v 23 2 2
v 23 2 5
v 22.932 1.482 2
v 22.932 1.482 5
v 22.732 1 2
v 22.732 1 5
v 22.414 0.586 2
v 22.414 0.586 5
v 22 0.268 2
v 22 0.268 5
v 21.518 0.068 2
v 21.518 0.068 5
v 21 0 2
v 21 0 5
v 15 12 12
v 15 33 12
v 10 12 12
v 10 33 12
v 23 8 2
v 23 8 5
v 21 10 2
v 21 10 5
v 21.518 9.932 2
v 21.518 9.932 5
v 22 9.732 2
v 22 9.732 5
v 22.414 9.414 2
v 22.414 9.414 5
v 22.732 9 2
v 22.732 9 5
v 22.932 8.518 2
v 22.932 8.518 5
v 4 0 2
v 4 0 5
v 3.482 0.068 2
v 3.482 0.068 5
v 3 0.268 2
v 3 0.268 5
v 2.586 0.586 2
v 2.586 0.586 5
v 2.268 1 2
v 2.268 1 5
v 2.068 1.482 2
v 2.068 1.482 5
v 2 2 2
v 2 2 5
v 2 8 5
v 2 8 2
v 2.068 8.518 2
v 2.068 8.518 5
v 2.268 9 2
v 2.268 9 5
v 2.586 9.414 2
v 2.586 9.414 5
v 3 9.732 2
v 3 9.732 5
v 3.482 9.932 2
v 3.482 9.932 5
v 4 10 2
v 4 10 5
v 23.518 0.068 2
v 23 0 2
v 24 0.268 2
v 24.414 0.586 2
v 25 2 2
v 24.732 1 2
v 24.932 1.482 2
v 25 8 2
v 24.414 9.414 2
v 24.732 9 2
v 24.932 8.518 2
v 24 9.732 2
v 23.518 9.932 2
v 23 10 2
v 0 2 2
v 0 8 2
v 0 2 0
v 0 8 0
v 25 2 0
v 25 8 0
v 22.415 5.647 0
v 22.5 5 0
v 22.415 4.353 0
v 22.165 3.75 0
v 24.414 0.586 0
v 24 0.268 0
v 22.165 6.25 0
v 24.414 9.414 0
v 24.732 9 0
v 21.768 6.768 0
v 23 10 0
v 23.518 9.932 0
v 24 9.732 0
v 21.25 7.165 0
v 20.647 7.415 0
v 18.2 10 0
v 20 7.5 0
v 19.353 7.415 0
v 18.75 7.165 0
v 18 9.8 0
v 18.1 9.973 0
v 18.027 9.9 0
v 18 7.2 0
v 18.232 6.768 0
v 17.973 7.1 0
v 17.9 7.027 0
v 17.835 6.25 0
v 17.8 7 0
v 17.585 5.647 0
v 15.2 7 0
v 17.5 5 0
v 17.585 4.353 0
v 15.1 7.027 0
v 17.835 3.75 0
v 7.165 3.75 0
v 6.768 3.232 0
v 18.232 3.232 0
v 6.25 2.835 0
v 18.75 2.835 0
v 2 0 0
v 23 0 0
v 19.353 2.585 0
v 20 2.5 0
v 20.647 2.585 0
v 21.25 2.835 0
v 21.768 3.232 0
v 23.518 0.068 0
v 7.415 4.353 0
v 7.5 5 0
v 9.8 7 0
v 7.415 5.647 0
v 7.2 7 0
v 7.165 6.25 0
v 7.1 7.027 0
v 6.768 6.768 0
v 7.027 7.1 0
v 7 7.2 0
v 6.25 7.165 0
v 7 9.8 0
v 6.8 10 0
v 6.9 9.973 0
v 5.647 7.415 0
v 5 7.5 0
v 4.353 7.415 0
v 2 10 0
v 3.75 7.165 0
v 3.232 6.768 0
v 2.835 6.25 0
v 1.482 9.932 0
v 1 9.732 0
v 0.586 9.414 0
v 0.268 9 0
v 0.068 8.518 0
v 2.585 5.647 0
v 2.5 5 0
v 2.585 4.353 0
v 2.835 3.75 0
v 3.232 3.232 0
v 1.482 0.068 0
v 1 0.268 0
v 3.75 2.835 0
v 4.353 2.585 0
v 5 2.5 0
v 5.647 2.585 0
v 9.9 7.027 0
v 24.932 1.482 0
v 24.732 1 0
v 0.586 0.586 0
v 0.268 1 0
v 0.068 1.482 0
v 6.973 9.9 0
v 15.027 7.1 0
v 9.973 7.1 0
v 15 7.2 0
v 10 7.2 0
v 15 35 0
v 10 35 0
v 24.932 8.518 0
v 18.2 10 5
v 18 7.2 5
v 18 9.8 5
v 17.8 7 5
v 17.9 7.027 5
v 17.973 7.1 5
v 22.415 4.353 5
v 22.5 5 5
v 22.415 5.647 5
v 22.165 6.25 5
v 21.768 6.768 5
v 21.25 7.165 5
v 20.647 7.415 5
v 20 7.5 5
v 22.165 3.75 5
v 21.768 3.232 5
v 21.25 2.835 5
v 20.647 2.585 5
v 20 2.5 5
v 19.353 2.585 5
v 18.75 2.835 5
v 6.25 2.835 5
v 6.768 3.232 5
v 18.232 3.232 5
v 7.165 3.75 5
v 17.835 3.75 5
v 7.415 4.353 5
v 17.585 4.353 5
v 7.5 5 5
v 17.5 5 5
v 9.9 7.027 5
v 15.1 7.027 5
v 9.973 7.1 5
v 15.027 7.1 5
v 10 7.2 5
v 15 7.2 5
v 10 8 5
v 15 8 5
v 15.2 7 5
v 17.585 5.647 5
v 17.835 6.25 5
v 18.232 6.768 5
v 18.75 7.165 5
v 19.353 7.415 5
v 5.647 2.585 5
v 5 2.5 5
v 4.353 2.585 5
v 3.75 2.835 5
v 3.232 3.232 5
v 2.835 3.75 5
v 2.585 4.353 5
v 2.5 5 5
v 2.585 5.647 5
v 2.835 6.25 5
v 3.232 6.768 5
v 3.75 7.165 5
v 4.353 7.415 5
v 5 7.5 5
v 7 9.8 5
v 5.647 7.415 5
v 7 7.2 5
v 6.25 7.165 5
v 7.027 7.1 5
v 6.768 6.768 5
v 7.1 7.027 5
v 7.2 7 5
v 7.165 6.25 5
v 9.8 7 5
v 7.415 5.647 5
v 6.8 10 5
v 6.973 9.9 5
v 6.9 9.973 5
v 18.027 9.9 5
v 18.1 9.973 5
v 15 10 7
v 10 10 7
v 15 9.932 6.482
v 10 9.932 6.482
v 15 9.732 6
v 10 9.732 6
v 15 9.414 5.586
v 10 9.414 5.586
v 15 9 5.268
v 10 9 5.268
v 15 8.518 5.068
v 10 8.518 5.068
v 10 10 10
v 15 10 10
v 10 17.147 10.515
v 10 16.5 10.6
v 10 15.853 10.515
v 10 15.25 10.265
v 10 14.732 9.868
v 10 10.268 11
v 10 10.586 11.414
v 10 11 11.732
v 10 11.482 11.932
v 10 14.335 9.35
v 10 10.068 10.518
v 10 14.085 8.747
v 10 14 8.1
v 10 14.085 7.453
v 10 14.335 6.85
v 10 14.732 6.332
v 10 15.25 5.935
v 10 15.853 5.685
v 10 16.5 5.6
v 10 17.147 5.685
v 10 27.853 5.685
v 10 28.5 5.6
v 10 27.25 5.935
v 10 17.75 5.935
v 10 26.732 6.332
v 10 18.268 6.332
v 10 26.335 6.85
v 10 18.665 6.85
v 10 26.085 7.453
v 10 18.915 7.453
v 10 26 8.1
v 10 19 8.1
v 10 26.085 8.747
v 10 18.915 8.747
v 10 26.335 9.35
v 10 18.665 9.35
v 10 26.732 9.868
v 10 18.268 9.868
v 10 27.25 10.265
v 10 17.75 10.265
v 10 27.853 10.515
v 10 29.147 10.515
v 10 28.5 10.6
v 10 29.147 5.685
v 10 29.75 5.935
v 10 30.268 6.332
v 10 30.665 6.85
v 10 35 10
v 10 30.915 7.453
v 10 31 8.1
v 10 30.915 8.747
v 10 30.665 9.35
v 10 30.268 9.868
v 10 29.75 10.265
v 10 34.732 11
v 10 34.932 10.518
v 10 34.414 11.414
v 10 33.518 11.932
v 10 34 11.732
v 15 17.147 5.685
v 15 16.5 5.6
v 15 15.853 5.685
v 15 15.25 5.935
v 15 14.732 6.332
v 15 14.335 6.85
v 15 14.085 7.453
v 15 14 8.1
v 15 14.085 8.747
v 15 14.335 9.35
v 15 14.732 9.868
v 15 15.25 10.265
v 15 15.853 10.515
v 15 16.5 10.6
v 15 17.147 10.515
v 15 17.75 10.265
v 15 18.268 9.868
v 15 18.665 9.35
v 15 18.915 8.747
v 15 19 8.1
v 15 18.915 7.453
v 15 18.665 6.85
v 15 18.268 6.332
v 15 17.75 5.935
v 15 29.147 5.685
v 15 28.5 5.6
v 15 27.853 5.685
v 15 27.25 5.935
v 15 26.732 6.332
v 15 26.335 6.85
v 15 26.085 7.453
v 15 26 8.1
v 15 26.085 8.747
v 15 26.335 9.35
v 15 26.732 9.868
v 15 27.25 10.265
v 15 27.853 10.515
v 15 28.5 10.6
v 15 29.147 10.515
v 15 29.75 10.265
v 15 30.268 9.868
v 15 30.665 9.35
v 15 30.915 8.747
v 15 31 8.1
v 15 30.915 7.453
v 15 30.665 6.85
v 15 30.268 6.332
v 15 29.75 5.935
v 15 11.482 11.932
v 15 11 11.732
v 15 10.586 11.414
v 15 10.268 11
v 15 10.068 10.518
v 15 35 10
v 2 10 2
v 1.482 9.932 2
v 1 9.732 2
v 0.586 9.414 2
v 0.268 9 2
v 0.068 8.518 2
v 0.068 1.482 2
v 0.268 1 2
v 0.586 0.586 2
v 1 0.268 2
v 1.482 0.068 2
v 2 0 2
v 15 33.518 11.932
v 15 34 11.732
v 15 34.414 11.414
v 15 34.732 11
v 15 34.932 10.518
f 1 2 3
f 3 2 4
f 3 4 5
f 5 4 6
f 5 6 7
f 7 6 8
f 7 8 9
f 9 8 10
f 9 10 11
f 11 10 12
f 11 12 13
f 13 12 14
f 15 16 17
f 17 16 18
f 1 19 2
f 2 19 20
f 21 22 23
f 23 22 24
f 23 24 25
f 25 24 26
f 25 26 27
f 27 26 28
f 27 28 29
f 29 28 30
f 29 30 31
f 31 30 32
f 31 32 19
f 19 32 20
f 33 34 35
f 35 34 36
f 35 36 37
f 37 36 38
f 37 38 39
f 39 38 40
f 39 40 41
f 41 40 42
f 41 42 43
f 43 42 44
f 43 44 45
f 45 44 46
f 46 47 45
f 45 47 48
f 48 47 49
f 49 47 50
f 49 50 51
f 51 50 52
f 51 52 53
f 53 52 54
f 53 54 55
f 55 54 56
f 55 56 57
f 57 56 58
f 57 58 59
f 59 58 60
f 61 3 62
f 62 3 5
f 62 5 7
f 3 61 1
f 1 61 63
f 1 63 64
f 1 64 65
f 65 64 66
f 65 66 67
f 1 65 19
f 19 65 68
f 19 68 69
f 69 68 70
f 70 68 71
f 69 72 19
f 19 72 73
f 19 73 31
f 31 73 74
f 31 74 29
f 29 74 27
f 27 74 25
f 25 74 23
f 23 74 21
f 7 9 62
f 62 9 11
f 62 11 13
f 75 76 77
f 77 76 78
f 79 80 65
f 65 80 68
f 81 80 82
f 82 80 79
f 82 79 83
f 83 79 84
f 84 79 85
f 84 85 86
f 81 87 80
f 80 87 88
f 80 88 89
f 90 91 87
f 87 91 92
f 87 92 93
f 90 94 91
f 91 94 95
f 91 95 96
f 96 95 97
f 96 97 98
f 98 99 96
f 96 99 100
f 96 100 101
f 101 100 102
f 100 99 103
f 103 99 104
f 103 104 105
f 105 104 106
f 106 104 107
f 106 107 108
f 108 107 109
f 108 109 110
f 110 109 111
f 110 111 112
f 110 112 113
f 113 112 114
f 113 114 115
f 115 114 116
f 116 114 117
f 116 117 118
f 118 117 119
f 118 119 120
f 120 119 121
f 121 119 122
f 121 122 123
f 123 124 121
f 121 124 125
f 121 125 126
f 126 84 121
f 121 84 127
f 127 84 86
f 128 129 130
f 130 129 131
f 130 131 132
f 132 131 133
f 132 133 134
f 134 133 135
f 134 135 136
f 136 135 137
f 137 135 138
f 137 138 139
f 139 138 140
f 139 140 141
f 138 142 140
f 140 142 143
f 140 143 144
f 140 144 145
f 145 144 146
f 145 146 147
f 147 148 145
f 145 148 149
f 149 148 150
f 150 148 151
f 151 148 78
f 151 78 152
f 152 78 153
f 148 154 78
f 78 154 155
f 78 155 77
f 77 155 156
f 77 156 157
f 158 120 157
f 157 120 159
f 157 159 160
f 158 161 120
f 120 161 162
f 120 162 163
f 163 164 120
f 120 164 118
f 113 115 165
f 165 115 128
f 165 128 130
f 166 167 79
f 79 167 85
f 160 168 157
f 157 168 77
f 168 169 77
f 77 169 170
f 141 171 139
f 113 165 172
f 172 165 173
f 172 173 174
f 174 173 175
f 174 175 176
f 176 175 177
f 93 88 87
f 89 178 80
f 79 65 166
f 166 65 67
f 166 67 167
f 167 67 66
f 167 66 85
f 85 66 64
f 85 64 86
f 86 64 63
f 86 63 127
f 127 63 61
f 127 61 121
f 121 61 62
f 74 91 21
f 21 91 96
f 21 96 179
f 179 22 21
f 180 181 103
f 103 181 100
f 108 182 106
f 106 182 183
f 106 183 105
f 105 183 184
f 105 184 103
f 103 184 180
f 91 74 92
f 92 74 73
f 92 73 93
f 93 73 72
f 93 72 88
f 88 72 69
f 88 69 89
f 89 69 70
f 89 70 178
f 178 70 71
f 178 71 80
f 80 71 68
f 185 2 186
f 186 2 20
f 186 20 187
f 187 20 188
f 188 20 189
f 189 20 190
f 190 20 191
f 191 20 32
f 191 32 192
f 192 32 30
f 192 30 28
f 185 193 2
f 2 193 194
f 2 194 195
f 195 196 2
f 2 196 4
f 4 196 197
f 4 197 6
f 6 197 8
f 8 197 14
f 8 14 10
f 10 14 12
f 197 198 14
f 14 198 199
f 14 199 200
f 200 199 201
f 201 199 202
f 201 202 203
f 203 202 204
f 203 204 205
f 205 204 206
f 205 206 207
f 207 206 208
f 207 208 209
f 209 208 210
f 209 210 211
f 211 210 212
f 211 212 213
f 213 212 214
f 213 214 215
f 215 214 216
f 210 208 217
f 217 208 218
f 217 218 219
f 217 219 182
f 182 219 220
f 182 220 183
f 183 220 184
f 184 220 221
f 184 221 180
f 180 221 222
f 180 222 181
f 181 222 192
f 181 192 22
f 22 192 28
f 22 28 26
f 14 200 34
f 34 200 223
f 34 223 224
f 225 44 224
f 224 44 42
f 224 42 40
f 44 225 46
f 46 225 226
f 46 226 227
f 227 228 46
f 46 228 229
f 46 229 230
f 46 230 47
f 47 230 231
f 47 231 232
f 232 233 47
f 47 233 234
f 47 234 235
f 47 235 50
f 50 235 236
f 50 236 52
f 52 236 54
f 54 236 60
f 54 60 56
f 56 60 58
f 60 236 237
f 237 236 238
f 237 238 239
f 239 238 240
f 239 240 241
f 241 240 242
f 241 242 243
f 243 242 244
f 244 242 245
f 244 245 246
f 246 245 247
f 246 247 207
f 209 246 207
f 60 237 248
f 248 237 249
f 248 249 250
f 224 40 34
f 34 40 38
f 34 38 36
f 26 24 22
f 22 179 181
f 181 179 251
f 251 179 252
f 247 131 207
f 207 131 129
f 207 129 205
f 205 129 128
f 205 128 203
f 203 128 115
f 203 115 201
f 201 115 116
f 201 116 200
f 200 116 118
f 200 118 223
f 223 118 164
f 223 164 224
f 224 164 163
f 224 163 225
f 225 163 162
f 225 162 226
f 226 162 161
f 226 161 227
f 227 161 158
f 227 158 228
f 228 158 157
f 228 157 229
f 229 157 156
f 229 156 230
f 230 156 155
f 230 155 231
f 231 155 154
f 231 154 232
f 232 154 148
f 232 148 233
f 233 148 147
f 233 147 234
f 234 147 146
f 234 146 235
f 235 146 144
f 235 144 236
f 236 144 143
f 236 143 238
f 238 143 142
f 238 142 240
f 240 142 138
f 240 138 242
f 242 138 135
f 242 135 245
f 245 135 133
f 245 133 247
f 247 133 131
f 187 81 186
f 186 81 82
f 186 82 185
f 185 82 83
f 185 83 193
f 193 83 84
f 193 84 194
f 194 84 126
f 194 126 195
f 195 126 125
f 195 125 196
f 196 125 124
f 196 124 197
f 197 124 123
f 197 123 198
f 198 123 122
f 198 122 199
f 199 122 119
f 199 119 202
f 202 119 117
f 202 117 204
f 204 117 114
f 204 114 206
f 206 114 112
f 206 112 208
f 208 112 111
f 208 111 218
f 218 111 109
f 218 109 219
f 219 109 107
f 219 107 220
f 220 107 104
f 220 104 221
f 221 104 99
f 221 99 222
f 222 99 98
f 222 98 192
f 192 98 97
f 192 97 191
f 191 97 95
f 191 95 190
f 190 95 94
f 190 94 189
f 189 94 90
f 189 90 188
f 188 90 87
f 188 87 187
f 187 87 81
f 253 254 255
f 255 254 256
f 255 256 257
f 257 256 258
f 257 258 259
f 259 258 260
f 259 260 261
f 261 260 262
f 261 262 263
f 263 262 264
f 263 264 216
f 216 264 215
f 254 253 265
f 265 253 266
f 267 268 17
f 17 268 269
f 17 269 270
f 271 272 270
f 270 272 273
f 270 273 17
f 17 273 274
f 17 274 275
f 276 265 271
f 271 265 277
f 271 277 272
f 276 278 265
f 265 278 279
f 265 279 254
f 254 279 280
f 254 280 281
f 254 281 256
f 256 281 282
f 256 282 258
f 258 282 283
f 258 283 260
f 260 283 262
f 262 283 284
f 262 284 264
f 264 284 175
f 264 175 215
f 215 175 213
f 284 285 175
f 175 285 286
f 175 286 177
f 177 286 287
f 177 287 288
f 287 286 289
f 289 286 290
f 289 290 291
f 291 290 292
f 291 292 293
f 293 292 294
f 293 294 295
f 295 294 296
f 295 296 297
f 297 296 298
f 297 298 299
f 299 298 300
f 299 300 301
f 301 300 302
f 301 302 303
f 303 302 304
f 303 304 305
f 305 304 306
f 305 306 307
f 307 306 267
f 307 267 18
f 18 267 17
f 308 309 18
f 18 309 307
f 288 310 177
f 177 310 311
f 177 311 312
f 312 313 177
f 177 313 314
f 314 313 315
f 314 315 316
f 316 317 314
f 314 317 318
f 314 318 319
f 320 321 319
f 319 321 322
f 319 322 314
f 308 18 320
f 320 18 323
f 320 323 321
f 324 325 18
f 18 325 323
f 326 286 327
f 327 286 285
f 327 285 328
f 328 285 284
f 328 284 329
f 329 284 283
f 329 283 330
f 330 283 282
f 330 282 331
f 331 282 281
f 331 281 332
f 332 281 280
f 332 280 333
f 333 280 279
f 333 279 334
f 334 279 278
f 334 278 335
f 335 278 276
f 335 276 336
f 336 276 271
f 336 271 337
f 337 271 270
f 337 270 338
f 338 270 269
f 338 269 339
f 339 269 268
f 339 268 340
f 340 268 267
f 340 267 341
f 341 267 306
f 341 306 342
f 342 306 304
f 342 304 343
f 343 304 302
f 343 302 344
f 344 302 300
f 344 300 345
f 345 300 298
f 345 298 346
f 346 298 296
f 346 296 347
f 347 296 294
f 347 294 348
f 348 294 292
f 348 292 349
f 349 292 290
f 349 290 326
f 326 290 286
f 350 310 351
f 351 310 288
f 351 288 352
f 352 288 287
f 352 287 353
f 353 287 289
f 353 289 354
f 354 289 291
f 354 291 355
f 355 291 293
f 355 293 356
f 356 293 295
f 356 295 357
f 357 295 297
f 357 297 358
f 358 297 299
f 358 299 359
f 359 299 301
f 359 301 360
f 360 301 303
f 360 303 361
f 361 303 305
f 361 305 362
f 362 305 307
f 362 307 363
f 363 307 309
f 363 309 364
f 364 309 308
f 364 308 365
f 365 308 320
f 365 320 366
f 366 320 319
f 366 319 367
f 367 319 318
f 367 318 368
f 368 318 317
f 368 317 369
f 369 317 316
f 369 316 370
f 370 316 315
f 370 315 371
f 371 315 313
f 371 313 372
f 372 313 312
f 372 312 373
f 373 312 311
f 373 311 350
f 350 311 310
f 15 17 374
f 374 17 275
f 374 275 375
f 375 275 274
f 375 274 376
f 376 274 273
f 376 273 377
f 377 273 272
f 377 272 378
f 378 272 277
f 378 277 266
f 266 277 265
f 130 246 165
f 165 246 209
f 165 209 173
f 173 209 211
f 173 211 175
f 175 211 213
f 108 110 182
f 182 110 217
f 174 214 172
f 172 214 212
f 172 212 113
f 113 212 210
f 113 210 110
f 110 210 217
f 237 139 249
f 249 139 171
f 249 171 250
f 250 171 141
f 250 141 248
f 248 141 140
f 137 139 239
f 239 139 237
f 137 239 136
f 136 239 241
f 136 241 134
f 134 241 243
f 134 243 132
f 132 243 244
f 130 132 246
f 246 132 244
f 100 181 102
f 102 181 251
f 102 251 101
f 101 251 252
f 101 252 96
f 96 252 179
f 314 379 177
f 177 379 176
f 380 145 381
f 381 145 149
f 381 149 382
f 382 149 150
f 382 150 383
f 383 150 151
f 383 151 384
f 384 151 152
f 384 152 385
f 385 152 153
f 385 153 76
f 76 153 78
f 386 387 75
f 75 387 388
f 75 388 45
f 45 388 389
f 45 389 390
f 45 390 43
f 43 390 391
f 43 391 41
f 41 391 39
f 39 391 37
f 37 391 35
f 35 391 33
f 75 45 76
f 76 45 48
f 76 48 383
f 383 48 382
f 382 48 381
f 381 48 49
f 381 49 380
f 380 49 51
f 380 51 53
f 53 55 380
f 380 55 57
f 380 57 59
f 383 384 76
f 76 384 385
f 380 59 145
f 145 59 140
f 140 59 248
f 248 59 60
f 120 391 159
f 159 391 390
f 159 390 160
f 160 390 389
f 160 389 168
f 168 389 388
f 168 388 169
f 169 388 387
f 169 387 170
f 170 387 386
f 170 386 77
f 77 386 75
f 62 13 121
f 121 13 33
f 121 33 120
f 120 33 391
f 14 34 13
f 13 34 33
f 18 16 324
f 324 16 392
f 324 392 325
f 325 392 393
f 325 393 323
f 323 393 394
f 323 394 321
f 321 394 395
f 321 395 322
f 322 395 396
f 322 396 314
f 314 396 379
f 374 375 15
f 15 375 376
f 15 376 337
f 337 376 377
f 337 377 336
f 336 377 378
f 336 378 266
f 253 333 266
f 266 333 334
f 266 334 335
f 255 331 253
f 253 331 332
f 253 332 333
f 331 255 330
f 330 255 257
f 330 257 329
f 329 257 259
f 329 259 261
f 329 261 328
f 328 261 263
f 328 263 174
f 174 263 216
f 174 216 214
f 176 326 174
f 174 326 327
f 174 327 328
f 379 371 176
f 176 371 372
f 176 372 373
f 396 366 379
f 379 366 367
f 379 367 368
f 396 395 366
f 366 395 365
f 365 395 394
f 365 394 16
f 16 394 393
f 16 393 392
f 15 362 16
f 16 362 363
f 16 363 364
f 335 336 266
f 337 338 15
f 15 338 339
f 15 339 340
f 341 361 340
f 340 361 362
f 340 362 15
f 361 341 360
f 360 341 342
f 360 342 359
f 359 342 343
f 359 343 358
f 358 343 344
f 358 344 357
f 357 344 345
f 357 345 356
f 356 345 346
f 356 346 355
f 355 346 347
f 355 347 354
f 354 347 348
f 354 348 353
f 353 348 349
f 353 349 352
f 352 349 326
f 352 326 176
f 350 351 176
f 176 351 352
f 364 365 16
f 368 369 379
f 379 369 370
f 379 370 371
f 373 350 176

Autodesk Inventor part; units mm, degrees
ref_plane "YZ Plane" through (0, 0, 0) normal (1, 0, 0) x (0, 1, 0)
ref_plane "XZ Plane" through (0, 0, 0) normal (0, 1, 0) x (-1, 0, 0)
ref_plane "XY Plane" through (0, 0, 0) normal (0, 0, 1) x (1, 0, 0)
sketch "スケッチ6" plane through (0, 0, 0) normal (0, 0, 1) x (1, 0, 0)
  line L0 (0, 0) -> (25, 0)
  line L1 (25, 0) -> (25, 30)
  line L2 (25, 30) -> (0, 30)
  line L3 (0, 30) -> (0, 0)
  circle A0 centre (5, 5) radius 2.5
  circle A1 centre (20, 5) radius 2.5
  dimension "d39" = 5
  dimension "d40" = 5
  dimension "d41" = 5
  dimension "d42" = 5
  dimension "d43" = 15
  dimension "d44" = 5
  dimension "d45" = 5
  dimension "d46" = 30
extrude "押し出し4" add sketch "スケッチ6" along normal blind 5
sketch "スケッチ7" plane through (0, 0, 5) normal (0, 0, 1) x (1, 0, 0)
  line L0 (25, 30) -> (0, 30) projected
  line L1 (10, 30) -> (15, 30)
  line L2 (15, 30) -> (15, 10)
  line L3 (15, 10) -> (10, 10)
  line L4 (10, 10) -> (10, 30)
  line L5 (25, 0) -> (25, 30) projected
  line L6 (0, 30) -> (0, 0) projected
  line L7 (0, 0) -> (25, 0) projected
  line L8 (10, 30) -> (15, 30)
  line L9 (15, 30) -> (15, 35)
  line L10 (15, 35) -> (10, 35)
  line L11 (10, 35) -> (10, 30)
  dimension "d49" = 5
  dimension "d50" = 10
  dimension "d51" = 10
  dimension "d52" = 10
  dimension "d55" = 5
  dimension "d56" = 5
extrude "押し出し5" add sketch "スケッチ7" along normal blind 10 contours L2 L3 L4 L0 | L0 L11 L10 L9
sketch "スケッチ8" plane through (10, 30, 5) normal (-1, 0, 0) x (0, 0, 1)
  line L0 (10, 5) -> (10, -20) projected
  line L1 (0, 5) -> (10, 5) projected
  line L2 (0, -20) -> (10, -20) projected
  point P0 (-5, -30)
  point P1 (3.1, -13.5)
  point P2 (3.1, -1.5)
  dimension "d57" = 6.9
  dimension "d58" = 6.9
  dimension "d59" = 12
  dimension "d60" = 6.5
  dimension "d61" = 6.5
hole "穴3" at (10, 16.5, 8.1) at (10, 28.5, 8.1) direction (1, 0, 0) diameter 5 depth 8
sketch "スケッチ9" plane through (0, 0, 5) normal (0, 0, 1) x (1, 0, 0)
  line L0 (10, 30) -> (0, 30) projected
  line L1 (0, 30) -> (7, 30)
  line L2 (7, 30) -> (7, 10)
  line L3 (7, 10) -> (0, 10)
  line L4 (0, 10) -> (0, 30)
  line L5 (25, 0) -> (25, 30) projected
  line L6 (25, 30) -> (18, 30)
  line L7 (18, 30) -> (18, 10)
  line L8 (18, 10) -> (25, 10)
  line L9 (25, 10) -> (25, 30)
  point P0 (0, 0)
  point P1 (5, 30)
  point P2 (18, 20)
  point P3 (7, 20)
  dimension "d70" = 20
  dimension "d72" = 7
  dimension "d73" = 7
extrude "押し出し6" cut sketch "スケッチ9" against normal blind 10
sketch "スケッチ10" plane through (0, 0, 5) normal (0, 0, 1) x (1, 0, 0)
  line L0 (10, 30) -> (7, 30) projected
  line L1 (7, 30) -> (7, 10) projected
  line L2 (7, 10) -> (0, 10) projected
  line L3 (0, 10) -> (0, 0) projected
  line L4 (0, 0) -> (25, 0) projected
  line L5 (25, 0) -> (25, 10) projected
  line L6 (25, 10) -> (18, 10) projected
  line L7 (18, 10) -> (18, 30) projected
  line L8 (18, 30) -> (15, 30) projected
  circle A0 centre (5, 5) radius 2.5 projected
  circle A1 centre (20, 5) radius 2.5 projected
  line L9 (2, 8) -> (23, 8)
  line L10 (23, 8) -> (23, 2)
  line L11 (23, 2) -> (2, 2)
  line L12 (2, 2) -> (2, 8)
  line L13 (2, 10) -> (2, 0)
  line L14 (24, 10) -> (19, 10) projected
  line L15 (23, 10) -> (23, 0)
  line L16 (15, 30) -> (15, 10) projected
  line L17 (15, 10) -> (10, 10) projected
  line L18 (10, 10) -> (10, 30) projected
  point P0 (2, 2)
  point P1 (23, 2)
  dimension "d77" = 2
  dimension "d78" = 2
  dimension "d79" = 2
  dimension "d80" = 2
extrude "押し出し7" cut sketch "スケッチ10" against normal blind 4 contours L18 L17 L16 L8 L7 L6 L15 L9 L13 L2 L1 L0 | L13 L12 L4 L3 L2 | L9 L10 L11 L12 | L15 L6 L5 L4 L10 | L11 L15 L4 L13 | A0 | A1
sketch "スケッチ11" plane through (0, 0, 1) normal (0, 0, 1) x (1, 0, 0)
  line L0 (0, 10) -> (0, 0) projected
  line L1 (25, 0) -> (25, 10) projected
  line L2 (0, 10) -> (25, 10)
  line L3 (25, 10) -> (25, 0)
  line L4 (25, 0) -> (0, 0)
  line L5 (0, 0) -> (0, 10)
extrude "押し出し8" add sketch "スケッチ11" along normal blind 4
sketch "スケッチ12" plane through (0, 0, 5) normal (0, 0, 1) x (1, 0, 0)
  circle A0 centre (5, 5) radius 2.5 projected
  circle A1 centre (20, 5) radius 2.5 projected
  point P0 (0, 0)
hole "穴4" at (5, 5, 5) at (20, 5, 5) direction (0, 0, -1) diameter 5 depth 8
sketch "スケッチ13" plane through (10, 30, 5) normal (-1, 0, 0) x (0, 0, 1)
  line L0 (10, -20) -> (10, 5) projected
  line L1 (0, -20) -> (10, -20) projected
  line L2 (10, 5) -> (7, 5)
  line L3 (7, 5) -> (7, -20)
  line L4 (7, -20) -> (10, -20)
  line L5 (10, -20) -> (10, 5)
  line L6 (-4, 0) -> (-4, -20) projected
  line L7 (-4, -20) -> (-1, -20)
  line L8 (-1, -20) -> (-1, 5)
  line L9 (-1, 5) -> (-4, 5)
  line L10 (-4, 5) -> (-4, -20)
  point P0 (-5, -30)
  dimension "d93" = 3
  dimension "d94" = 3
extrude "押し出し9" cut sketch "スケッチ13" against normal through all contours L1 L3 L2 L0
sketch "スケッチ14" plane through (10, 30, 5) normal (0, 1, 0) x (1, 0, 0)
  line L0 (5, 4) -> (8, 4) projected
  line L1 (8, 4) -> (8, 5) projected
  line L2 (8, 5) -> (-3, 5) projected
  line L3 (-3, 5) -> (-3, 4) projected
  line L4 (-3, 4) -> (0, 4) projected
  line L5 (0, 4) -> (0, 0) projected
  line L6 (5, 0) -> (0, 0) projected
  line L7 (5, 0) -> (5, 4) projected
  point P0 (-10, 5)
extrude "押し出し10" add sketch "スケッチ14" along normal blind 5
sketch "スケッチ15" plane through (0, 0, 1) normal (0, 0, 1) x (1, 0, 0)
  line L0 (7, 10) -> (10, 10) projected
  line L1 (10, 35) -> (10, 10) projected
  line L2 (7, 35) -> (10, 35) projected
  line L3 (7, 10) -> (7, 35) projected
  line L4 (15, 10) -> (18, 10) projected
  line L5 (18, 35) -> (18, 10) projected
  line L6 (15, 35) -> (18, 35) projected
  line L7 (15, 10) -> (15, 35) projected
  point P0 (0, 0)
extrude "押し出し11" add sketch "スケッチ15" along normal blind 3
sketch "スケッチ16" plane through (0, 0, 5) normal (0, 0, 1) x (1, 0, 0)
  line L0 (25, 0) -> (25, 10) projected
  line L1 (10, 10) -> (0, 10) projected
  line L2 (25, 10) -> (15, 10) projected
  line L3 (10, 10) -> (15, 10) projected
  line L4 (0, 10) -> (0, 0) projected
  line L5 (0, 0) -> (25, 0) projected
  circle A0 centre (20, 5) radius 2.5 projected
  circle A1 centre (5, 5) radius 2.5 projected
  line L6 (2, 10) -> (2, 0)
  line L7 (23, 10) -> (23, 0)
  point P0 (23, 0)
  point P1 (2, 0)
extrude "押し出し12" cut sketch "スケッチ16" against normal blind 3 contours L5 L7 L2 L0 | L5 L4 L1 L6
fillet "フィレット7" radius 2 4 edges at (2, 10, 3.5) (2, 0, 3.5) (23, 10, 3.5) (23, 0, 3.5)
sketch "スケッチ17" plane through (0, 0, 4) normal (0, 0, 1) x (1, 0, 0)
  line L0 (10, 35) -> (10, 10) projected
  line L1 (10, 35) -> (7, 35) projected
  line L2 (7, 35) -> (7, 10) projected
  line L3 (18, 10) -> (18, 35) projected
  line L4 (18, 35) -> (15, 35) projected
  line L5 (15, 10) -> (15, 35) projected
  line L6 (18, 10) -> (15, 10) projected
  line L7 (10, 10) -> (7, 10) projected
  point P0 (0, 0)
extrude "押し出し13" cut sketch "スケッチ17" against normal through all
sketch "スケッチ18" plane through (0, 0, 5) normal (0, 0, 1) x (1, 0, 0)
  line L0 (10, 10) -> (4, 10) projected
  line L1 (10, 10) -> (7, 10)
  line L2 (7, 10) -> (7, 7)
  line L3 (7, 7) -> (10, 7)
  line L4 (10, 7) -> (10, 10)
  line L5 (21, 10) -> (15, 10) projected
  line L6 (15, 10) -> (18, 10)
  line L7 (18, 10) -> (18, 7)
  line L8 (18, 7) -> (15, 7)
  line L9 (15, 7) -> (15, 10)
  point P0 (0, 0)
  dimension "d107" = 3
  dimension "d108" = 3
  dimension "d109" = 3
extrude "押し出し14" cut sketch "スケッチ18" against normal blind 10
fillet "フィレット8" radius 0.2 6 edges at (7, 10, 2.5) (7, 7, 2.5) (18, 10, 2.5) (15, 7, 2.5) (10, 7, 2.5) (18, 7, 2.5)
fillet "フィレット9" radius 2 7 edges at (0, 10, 1) (0, 0, 1) (12.5, 35, 12) (12.5, 10, 12) (12.5, 10, 5) (25, 10, 1) (25, 0, 1)
equation "\"d42\" = d41"
equation "\"d45\" = d44"
equation "\"d58\" = d57"
equation "\"d73\" = d72"
equation "\"d94\" = d93"
equation "\"d108\" = d107"
properties part number "BP_BOX-Support-Bar-Connect1-20" material "ABS プラスチック"
